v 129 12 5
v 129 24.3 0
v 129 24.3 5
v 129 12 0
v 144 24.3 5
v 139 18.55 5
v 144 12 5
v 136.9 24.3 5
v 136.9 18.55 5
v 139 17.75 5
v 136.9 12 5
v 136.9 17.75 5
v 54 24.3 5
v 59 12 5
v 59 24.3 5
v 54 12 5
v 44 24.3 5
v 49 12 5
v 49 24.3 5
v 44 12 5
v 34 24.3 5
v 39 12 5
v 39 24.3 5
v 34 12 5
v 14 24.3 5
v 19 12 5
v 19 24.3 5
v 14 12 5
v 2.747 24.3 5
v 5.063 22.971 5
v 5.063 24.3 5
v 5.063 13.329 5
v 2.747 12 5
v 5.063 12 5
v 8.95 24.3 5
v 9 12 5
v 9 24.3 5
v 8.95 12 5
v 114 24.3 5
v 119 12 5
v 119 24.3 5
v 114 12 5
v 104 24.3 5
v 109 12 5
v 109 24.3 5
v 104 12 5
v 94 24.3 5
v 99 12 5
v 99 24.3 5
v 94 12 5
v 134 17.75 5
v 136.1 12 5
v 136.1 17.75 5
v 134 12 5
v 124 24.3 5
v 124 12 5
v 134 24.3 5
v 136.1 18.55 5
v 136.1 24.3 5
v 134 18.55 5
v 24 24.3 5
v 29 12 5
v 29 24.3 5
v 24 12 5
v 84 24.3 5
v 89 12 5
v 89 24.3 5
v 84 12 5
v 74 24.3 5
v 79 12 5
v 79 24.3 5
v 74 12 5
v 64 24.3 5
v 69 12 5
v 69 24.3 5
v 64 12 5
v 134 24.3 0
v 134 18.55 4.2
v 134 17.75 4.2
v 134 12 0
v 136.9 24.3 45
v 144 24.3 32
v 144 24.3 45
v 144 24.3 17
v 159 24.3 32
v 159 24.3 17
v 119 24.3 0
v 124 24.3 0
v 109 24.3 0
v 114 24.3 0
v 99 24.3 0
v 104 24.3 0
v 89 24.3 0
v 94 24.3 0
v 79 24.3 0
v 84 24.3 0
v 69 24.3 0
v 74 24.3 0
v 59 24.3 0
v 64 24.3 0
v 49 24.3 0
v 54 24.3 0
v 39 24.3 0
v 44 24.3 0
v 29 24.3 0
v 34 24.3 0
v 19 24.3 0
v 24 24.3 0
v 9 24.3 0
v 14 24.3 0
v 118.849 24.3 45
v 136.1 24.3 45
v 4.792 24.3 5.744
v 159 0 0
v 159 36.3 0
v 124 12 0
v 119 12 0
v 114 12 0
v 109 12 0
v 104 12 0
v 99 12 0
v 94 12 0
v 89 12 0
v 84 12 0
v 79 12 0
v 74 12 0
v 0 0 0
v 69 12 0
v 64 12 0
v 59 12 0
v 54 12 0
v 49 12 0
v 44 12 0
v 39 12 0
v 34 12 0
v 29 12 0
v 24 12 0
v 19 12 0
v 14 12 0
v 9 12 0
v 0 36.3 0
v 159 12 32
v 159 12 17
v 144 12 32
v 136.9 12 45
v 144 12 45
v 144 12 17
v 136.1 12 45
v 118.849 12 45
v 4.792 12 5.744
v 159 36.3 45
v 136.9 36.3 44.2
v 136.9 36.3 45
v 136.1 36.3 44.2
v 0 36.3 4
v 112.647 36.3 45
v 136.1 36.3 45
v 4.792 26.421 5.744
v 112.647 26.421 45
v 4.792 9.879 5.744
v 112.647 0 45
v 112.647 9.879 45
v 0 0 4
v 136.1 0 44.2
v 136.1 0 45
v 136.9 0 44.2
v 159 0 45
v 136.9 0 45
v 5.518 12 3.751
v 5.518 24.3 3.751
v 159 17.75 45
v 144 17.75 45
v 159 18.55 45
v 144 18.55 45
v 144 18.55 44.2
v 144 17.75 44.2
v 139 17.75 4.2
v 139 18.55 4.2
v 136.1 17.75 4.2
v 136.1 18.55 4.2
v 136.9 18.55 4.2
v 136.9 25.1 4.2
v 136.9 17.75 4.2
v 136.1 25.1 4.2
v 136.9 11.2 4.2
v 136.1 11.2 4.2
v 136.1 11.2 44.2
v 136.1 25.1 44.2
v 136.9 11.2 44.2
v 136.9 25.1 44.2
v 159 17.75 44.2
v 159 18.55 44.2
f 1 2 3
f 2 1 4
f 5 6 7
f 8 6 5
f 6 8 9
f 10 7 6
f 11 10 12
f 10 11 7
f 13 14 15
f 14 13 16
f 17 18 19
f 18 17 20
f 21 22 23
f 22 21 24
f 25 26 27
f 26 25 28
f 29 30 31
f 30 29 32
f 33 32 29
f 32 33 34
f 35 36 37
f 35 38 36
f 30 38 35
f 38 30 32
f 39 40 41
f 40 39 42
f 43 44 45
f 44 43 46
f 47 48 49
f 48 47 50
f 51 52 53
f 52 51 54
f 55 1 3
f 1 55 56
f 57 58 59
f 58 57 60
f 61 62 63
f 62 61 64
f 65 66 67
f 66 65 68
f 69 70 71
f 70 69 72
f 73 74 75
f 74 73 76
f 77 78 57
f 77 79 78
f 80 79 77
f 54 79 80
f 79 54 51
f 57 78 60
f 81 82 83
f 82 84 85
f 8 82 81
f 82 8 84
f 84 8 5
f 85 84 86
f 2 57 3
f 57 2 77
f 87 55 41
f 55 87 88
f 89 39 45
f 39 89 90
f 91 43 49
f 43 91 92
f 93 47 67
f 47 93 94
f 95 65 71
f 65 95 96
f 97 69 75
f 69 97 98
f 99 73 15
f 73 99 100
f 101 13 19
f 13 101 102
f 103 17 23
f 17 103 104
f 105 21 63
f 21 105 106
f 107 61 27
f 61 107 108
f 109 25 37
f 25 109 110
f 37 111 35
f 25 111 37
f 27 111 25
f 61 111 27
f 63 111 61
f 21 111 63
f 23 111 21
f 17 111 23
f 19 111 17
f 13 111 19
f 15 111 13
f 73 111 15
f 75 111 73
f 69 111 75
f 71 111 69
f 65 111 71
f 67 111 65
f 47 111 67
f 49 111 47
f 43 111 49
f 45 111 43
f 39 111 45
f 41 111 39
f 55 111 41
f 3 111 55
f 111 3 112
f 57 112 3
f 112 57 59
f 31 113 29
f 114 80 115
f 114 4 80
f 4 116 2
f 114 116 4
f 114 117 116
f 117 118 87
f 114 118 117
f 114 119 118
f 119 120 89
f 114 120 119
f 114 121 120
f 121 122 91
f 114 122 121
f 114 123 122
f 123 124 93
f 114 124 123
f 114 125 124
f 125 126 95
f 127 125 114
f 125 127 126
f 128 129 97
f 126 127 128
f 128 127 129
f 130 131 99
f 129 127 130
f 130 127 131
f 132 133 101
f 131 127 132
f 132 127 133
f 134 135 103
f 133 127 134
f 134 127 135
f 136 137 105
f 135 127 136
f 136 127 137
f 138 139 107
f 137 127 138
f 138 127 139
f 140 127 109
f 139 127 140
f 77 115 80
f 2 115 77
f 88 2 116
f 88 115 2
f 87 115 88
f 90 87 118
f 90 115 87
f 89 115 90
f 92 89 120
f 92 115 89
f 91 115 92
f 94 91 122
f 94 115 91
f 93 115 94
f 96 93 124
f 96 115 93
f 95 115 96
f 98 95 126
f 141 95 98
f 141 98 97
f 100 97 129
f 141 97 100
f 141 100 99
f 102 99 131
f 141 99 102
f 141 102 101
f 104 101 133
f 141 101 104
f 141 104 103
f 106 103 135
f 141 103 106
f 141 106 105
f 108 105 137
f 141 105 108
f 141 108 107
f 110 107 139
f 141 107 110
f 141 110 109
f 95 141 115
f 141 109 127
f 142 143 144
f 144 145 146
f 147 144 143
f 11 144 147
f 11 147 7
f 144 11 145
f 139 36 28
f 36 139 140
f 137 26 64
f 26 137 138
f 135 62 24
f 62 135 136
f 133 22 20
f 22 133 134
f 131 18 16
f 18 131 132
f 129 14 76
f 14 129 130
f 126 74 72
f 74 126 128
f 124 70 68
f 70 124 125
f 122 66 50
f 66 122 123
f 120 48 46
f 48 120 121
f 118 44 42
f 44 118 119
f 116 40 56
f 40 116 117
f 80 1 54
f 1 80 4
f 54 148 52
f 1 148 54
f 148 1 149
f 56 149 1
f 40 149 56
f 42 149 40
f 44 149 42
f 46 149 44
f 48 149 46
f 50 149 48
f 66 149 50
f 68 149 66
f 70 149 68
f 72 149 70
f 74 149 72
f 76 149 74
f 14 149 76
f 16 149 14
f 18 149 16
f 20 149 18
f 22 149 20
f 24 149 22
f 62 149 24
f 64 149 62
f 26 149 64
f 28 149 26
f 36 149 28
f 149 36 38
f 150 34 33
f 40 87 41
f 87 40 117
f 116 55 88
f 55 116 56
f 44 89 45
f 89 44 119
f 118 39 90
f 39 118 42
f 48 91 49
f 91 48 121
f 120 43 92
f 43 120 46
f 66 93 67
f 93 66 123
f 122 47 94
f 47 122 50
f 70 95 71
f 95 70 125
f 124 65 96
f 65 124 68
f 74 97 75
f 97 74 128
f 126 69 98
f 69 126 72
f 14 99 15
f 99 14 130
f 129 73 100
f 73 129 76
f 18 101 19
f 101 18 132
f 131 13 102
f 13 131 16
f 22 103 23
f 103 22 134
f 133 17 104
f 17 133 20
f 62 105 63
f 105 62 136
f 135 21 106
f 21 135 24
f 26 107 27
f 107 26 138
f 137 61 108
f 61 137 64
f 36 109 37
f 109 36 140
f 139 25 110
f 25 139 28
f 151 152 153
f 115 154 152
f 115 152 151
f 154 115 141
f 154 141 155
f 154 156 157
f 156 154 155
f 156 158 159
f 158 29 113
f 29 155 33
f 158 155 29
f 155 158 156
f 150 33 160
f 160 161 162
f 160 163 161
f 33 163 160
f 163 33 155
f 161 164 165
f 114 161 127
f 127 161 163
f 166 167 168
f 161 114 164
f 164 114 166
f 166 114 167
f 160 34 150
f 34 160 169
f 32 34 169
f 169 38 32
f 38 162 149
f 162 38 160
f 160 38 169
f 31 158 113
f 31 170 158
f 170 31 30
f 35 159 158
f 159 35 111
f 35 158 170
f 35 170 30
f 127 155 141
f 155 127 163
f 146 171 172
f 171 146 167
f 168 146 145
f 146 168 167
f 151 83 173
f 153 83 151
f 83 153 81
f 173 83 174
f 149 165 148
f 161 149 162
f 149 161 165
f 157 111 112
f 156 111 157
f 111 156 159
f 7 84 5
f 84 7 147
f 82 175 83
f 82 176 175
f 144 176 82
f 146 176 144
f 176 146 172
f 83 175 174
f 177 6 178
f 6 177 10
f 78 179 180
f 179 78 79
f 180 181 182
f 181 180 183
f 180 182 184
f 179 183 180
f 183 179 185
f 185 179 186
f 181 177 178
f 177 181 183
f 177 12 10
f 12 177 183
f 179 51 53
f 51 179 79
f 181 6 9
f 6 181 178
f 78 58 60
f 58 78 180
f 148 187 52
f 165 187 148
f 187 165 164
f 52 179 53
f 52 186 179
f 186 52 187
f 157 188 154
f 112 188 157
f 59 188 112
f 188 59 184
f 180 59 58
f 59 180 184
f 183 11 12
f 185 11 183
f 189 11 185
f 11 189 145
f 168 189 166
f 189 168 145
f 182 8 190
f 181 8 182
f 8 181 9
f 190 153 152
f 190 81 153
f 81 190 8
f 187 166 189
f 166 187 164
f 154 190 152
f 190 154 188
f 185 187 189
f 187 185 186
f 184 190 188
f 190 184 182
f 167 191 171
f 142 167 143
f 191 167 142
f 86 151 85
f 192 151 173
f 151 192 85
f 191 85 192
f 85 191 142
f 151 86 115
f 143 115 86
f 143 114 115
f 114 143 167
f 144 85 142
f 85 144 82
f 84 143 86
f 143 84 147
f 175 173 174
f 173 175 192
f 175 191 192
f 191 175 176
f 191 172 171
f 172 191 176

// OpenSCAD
// file: ../config/global_variables.scad
/* RailEduKit/InteractiveSignallingLaboratory © 2025 by Martin Scheidt and contributors
 * License: CC-BY 4.0 - https://creativecommons.org/licenses/by/4.0/
 * Project description: The Interactive Signalling Laboratory is a tool for training in Rail
 * Applications to enhance the knowledge of control and signalling principles for rail transport systems.
 *
 * Module: config/global_variables.scad
 */


/*************** resolution ***************/
// number of fragments; default 0;
//When this variable has a value greater than zero, the two variables $fa and $fs are ignored
$fn = $preview ? 32 : 128;

// $fa = 12;// minimum angle for a fragment; default 12; minimum allowed value is 0.01
// $fs = 2;// minimum size of a fragment; default 2; minimum allowed value is 0.01

/*****
To have the dimensions of all components at one place
*******/

/*******
TODO
- standard on which part the move tolerance is substracted?
******/
// ATTENTION: Note the general move_tolerance of 0.5

move_tolerance = 0.5;

nozzle_diameter = 0.4;

{/***************wood rail specification***************/
    // rail instead of wood to prevent duplicate variables with tracklib.scad file
    rail_height = 12;
    rail_width = 40;
    rail_thickness_track = 6;
    rail_well_height = 9; // copy from tracklib
    rail_well_width = 5.7; // copy from tracklib
    rail_well_spacing = 19.25; // copy from tracklib
    rail_groove_depth = rail_height - rail_well_height;

    straight_length = 144;

    curve_inner_radius = 180; // 182; // inner radius
    curve_middle_radius = curve_inner_radius+rail_width/2;
    curve_outer_radius = curve_inner_radius+rail_width;
    curve_angle = 45.7; // degree
    curve_length_middle_radius = (2*PI*curve_middle_radius*curve_angle)/360;
}
{/***************engraving specifications***************/
    engraving_height = 2;//(block_height-handle_height)/2;
    engraving_thickness = 1.5;
    
    fine_line = 0.2;
    thin_line = 0.8;
    regular_line = 1;
}
// main file
/* RailEduKit/InteractiveSignallingLaboratory © 2025 by Martin Scheidt and contributors
 * License: CC-BY 4.0 - https://creativecommons.org/licenses/by/4.0/
 * Project description: The Interactive Signalling Laboratory is a tool for training in Rail
 * Applications to enhance the knowledge of control and signalling principles for rail transport systems.
 *
 * Module: drill_template_straight
 */

include <../config/global_variables.scad>

drill_move_tolerance = 0.3;
// drill straight ground
function dsg_thickness() = 5;
function dsg_hole_depth() = 5;
// drill straight cutout = dsc
function dsc_connector_width() = 15;
function dsc_connector_height() = 15;
dsc_y_pos = 12;
function dsc_depth() = rail_height+drill_move_tolerance;

dsc_connector_z_pos = dsg_thickness()+12;
dsc_supporting_surface_width = 50;

// drill straight hole
dsh_y_pos = dsc_depth()/2;
dsh_x_pos = 7.5;

// drill straigth base = dsb
dsb_depth = 2*dsc_y_pos+dsc_depth();
function dsb_height() = dsg_thickness()+rail_width;//27;

module diagonal_cutout() {
	translate([ 0, 0, 4 ])
	rotate([ 0, -20, 0 ])
	union() {
		cube([ 150, dsb_depth, 60 ]);
		// chamfer
		translate([ 155 / 2 + 2.6, dsc_y_pos, 0 ])
		rotate([ 45, 0, 0 ])
		cube([ 150, 3, 3 ], center = true);
		translate([ 155 / 2 + 2.6, dsc_y_pos + dsc_depth(), 0 ])
		rotate([ 45, 0, 0 ])
		cube([ 150, 3, 3 ], center = true);
	}
}

module connector_space() {
	difference() {
		cube([ dsc_connector_width(), dsb_depth, dsb_height() ]);
		translate([ 0, dsc_y_pos, dsc_connector_z_pos ])
		cube([ dsc_connector_width(), dsc_depth(), dsc_connector_height() ]);
		translate([ 0, dsc_y_pos + (dsc_depth() - thin_line) / 2, dsb_height() - thin_line ])
		cube([ dsc_connector_width(), thin_line, thin_line ]);
	}
}
module template_straight() {
	difference() {
		cube([ straight_length, dsb_depth, dsb_height() ]);
		// straight
		translate([ 0, dsc_y_pos, dsg_thickness() ])
		cube([ straight_length, dsc_depth(), dsb_height() ]);
		// ground holes
		for (x = [straight_length - 3 * dsg_hole_depth():-10:5]) {
			translate([ x, dsc_y_pos, 0 ])
			cube([ dsg_hole_depth(), dsc_depth(), dsg_thickness() ]);
		}
		diagonal_cutout();

		// hole position lines
		translate([
			straight_length - 2 * dsg_hole_depth(), dsc_y_pos + (dsc_depth() - thin_line) / 2, dsg_thickness() - thin_line
		])
		cube([ dsg_hole_depth(), thin_line, thin_line ]);
		translate([ straight_length - dsh_x_pos - thin_line / 2, dsc_y_pos, dsg_thickness() - thin_line ])
		cube([ thin_line, dsc_depth(), thin_line ]);
		translate([ straight_length - dsh_x_pos - thin_line / 2, dsc_y_pos - dsc_depth(), dsb_height() - thin_line ])
		cube([ thin_line, dsc_depth(), thin_line ]);
		translate([ straight_length - dsh_x_pos - thin_line / 2, dsc_y_pos + dsc_depth(), dsb_height() - thin_line ])
		cube([ thin_line, dsc_depth(), thin_line ]);
		translate([ straight_length - dsh_x_pos - thin_line / 2, dsc_y_pos - thin_line, dsg_thickness() - thin_line ])
		cube([ thin_line, thin_line, dsb_height() ]);
		translate([ straight_length - dsh_x_pos - thin_line / 2, dsc_y_pos + dsc_depth(), dsg_thickness() - thin_line ])
		cube([ thin_line, thin_line, dsb_height() ]);
	}
	// connector
	translate([ straight_length, 0, 0 ])
	connector_space();
	// translate([-dsc_supporting_surface_width, dsc_y_pos, 0]) cube([dsc_supporting_surface_width,
	// rail_height+move_tolerance, dsg_thickness()]);
}

module test_print() {
	difference() {
		template_straight();
		cube([ straight_length - 30, 50, 50 ]);
	}
}

template_straight();
